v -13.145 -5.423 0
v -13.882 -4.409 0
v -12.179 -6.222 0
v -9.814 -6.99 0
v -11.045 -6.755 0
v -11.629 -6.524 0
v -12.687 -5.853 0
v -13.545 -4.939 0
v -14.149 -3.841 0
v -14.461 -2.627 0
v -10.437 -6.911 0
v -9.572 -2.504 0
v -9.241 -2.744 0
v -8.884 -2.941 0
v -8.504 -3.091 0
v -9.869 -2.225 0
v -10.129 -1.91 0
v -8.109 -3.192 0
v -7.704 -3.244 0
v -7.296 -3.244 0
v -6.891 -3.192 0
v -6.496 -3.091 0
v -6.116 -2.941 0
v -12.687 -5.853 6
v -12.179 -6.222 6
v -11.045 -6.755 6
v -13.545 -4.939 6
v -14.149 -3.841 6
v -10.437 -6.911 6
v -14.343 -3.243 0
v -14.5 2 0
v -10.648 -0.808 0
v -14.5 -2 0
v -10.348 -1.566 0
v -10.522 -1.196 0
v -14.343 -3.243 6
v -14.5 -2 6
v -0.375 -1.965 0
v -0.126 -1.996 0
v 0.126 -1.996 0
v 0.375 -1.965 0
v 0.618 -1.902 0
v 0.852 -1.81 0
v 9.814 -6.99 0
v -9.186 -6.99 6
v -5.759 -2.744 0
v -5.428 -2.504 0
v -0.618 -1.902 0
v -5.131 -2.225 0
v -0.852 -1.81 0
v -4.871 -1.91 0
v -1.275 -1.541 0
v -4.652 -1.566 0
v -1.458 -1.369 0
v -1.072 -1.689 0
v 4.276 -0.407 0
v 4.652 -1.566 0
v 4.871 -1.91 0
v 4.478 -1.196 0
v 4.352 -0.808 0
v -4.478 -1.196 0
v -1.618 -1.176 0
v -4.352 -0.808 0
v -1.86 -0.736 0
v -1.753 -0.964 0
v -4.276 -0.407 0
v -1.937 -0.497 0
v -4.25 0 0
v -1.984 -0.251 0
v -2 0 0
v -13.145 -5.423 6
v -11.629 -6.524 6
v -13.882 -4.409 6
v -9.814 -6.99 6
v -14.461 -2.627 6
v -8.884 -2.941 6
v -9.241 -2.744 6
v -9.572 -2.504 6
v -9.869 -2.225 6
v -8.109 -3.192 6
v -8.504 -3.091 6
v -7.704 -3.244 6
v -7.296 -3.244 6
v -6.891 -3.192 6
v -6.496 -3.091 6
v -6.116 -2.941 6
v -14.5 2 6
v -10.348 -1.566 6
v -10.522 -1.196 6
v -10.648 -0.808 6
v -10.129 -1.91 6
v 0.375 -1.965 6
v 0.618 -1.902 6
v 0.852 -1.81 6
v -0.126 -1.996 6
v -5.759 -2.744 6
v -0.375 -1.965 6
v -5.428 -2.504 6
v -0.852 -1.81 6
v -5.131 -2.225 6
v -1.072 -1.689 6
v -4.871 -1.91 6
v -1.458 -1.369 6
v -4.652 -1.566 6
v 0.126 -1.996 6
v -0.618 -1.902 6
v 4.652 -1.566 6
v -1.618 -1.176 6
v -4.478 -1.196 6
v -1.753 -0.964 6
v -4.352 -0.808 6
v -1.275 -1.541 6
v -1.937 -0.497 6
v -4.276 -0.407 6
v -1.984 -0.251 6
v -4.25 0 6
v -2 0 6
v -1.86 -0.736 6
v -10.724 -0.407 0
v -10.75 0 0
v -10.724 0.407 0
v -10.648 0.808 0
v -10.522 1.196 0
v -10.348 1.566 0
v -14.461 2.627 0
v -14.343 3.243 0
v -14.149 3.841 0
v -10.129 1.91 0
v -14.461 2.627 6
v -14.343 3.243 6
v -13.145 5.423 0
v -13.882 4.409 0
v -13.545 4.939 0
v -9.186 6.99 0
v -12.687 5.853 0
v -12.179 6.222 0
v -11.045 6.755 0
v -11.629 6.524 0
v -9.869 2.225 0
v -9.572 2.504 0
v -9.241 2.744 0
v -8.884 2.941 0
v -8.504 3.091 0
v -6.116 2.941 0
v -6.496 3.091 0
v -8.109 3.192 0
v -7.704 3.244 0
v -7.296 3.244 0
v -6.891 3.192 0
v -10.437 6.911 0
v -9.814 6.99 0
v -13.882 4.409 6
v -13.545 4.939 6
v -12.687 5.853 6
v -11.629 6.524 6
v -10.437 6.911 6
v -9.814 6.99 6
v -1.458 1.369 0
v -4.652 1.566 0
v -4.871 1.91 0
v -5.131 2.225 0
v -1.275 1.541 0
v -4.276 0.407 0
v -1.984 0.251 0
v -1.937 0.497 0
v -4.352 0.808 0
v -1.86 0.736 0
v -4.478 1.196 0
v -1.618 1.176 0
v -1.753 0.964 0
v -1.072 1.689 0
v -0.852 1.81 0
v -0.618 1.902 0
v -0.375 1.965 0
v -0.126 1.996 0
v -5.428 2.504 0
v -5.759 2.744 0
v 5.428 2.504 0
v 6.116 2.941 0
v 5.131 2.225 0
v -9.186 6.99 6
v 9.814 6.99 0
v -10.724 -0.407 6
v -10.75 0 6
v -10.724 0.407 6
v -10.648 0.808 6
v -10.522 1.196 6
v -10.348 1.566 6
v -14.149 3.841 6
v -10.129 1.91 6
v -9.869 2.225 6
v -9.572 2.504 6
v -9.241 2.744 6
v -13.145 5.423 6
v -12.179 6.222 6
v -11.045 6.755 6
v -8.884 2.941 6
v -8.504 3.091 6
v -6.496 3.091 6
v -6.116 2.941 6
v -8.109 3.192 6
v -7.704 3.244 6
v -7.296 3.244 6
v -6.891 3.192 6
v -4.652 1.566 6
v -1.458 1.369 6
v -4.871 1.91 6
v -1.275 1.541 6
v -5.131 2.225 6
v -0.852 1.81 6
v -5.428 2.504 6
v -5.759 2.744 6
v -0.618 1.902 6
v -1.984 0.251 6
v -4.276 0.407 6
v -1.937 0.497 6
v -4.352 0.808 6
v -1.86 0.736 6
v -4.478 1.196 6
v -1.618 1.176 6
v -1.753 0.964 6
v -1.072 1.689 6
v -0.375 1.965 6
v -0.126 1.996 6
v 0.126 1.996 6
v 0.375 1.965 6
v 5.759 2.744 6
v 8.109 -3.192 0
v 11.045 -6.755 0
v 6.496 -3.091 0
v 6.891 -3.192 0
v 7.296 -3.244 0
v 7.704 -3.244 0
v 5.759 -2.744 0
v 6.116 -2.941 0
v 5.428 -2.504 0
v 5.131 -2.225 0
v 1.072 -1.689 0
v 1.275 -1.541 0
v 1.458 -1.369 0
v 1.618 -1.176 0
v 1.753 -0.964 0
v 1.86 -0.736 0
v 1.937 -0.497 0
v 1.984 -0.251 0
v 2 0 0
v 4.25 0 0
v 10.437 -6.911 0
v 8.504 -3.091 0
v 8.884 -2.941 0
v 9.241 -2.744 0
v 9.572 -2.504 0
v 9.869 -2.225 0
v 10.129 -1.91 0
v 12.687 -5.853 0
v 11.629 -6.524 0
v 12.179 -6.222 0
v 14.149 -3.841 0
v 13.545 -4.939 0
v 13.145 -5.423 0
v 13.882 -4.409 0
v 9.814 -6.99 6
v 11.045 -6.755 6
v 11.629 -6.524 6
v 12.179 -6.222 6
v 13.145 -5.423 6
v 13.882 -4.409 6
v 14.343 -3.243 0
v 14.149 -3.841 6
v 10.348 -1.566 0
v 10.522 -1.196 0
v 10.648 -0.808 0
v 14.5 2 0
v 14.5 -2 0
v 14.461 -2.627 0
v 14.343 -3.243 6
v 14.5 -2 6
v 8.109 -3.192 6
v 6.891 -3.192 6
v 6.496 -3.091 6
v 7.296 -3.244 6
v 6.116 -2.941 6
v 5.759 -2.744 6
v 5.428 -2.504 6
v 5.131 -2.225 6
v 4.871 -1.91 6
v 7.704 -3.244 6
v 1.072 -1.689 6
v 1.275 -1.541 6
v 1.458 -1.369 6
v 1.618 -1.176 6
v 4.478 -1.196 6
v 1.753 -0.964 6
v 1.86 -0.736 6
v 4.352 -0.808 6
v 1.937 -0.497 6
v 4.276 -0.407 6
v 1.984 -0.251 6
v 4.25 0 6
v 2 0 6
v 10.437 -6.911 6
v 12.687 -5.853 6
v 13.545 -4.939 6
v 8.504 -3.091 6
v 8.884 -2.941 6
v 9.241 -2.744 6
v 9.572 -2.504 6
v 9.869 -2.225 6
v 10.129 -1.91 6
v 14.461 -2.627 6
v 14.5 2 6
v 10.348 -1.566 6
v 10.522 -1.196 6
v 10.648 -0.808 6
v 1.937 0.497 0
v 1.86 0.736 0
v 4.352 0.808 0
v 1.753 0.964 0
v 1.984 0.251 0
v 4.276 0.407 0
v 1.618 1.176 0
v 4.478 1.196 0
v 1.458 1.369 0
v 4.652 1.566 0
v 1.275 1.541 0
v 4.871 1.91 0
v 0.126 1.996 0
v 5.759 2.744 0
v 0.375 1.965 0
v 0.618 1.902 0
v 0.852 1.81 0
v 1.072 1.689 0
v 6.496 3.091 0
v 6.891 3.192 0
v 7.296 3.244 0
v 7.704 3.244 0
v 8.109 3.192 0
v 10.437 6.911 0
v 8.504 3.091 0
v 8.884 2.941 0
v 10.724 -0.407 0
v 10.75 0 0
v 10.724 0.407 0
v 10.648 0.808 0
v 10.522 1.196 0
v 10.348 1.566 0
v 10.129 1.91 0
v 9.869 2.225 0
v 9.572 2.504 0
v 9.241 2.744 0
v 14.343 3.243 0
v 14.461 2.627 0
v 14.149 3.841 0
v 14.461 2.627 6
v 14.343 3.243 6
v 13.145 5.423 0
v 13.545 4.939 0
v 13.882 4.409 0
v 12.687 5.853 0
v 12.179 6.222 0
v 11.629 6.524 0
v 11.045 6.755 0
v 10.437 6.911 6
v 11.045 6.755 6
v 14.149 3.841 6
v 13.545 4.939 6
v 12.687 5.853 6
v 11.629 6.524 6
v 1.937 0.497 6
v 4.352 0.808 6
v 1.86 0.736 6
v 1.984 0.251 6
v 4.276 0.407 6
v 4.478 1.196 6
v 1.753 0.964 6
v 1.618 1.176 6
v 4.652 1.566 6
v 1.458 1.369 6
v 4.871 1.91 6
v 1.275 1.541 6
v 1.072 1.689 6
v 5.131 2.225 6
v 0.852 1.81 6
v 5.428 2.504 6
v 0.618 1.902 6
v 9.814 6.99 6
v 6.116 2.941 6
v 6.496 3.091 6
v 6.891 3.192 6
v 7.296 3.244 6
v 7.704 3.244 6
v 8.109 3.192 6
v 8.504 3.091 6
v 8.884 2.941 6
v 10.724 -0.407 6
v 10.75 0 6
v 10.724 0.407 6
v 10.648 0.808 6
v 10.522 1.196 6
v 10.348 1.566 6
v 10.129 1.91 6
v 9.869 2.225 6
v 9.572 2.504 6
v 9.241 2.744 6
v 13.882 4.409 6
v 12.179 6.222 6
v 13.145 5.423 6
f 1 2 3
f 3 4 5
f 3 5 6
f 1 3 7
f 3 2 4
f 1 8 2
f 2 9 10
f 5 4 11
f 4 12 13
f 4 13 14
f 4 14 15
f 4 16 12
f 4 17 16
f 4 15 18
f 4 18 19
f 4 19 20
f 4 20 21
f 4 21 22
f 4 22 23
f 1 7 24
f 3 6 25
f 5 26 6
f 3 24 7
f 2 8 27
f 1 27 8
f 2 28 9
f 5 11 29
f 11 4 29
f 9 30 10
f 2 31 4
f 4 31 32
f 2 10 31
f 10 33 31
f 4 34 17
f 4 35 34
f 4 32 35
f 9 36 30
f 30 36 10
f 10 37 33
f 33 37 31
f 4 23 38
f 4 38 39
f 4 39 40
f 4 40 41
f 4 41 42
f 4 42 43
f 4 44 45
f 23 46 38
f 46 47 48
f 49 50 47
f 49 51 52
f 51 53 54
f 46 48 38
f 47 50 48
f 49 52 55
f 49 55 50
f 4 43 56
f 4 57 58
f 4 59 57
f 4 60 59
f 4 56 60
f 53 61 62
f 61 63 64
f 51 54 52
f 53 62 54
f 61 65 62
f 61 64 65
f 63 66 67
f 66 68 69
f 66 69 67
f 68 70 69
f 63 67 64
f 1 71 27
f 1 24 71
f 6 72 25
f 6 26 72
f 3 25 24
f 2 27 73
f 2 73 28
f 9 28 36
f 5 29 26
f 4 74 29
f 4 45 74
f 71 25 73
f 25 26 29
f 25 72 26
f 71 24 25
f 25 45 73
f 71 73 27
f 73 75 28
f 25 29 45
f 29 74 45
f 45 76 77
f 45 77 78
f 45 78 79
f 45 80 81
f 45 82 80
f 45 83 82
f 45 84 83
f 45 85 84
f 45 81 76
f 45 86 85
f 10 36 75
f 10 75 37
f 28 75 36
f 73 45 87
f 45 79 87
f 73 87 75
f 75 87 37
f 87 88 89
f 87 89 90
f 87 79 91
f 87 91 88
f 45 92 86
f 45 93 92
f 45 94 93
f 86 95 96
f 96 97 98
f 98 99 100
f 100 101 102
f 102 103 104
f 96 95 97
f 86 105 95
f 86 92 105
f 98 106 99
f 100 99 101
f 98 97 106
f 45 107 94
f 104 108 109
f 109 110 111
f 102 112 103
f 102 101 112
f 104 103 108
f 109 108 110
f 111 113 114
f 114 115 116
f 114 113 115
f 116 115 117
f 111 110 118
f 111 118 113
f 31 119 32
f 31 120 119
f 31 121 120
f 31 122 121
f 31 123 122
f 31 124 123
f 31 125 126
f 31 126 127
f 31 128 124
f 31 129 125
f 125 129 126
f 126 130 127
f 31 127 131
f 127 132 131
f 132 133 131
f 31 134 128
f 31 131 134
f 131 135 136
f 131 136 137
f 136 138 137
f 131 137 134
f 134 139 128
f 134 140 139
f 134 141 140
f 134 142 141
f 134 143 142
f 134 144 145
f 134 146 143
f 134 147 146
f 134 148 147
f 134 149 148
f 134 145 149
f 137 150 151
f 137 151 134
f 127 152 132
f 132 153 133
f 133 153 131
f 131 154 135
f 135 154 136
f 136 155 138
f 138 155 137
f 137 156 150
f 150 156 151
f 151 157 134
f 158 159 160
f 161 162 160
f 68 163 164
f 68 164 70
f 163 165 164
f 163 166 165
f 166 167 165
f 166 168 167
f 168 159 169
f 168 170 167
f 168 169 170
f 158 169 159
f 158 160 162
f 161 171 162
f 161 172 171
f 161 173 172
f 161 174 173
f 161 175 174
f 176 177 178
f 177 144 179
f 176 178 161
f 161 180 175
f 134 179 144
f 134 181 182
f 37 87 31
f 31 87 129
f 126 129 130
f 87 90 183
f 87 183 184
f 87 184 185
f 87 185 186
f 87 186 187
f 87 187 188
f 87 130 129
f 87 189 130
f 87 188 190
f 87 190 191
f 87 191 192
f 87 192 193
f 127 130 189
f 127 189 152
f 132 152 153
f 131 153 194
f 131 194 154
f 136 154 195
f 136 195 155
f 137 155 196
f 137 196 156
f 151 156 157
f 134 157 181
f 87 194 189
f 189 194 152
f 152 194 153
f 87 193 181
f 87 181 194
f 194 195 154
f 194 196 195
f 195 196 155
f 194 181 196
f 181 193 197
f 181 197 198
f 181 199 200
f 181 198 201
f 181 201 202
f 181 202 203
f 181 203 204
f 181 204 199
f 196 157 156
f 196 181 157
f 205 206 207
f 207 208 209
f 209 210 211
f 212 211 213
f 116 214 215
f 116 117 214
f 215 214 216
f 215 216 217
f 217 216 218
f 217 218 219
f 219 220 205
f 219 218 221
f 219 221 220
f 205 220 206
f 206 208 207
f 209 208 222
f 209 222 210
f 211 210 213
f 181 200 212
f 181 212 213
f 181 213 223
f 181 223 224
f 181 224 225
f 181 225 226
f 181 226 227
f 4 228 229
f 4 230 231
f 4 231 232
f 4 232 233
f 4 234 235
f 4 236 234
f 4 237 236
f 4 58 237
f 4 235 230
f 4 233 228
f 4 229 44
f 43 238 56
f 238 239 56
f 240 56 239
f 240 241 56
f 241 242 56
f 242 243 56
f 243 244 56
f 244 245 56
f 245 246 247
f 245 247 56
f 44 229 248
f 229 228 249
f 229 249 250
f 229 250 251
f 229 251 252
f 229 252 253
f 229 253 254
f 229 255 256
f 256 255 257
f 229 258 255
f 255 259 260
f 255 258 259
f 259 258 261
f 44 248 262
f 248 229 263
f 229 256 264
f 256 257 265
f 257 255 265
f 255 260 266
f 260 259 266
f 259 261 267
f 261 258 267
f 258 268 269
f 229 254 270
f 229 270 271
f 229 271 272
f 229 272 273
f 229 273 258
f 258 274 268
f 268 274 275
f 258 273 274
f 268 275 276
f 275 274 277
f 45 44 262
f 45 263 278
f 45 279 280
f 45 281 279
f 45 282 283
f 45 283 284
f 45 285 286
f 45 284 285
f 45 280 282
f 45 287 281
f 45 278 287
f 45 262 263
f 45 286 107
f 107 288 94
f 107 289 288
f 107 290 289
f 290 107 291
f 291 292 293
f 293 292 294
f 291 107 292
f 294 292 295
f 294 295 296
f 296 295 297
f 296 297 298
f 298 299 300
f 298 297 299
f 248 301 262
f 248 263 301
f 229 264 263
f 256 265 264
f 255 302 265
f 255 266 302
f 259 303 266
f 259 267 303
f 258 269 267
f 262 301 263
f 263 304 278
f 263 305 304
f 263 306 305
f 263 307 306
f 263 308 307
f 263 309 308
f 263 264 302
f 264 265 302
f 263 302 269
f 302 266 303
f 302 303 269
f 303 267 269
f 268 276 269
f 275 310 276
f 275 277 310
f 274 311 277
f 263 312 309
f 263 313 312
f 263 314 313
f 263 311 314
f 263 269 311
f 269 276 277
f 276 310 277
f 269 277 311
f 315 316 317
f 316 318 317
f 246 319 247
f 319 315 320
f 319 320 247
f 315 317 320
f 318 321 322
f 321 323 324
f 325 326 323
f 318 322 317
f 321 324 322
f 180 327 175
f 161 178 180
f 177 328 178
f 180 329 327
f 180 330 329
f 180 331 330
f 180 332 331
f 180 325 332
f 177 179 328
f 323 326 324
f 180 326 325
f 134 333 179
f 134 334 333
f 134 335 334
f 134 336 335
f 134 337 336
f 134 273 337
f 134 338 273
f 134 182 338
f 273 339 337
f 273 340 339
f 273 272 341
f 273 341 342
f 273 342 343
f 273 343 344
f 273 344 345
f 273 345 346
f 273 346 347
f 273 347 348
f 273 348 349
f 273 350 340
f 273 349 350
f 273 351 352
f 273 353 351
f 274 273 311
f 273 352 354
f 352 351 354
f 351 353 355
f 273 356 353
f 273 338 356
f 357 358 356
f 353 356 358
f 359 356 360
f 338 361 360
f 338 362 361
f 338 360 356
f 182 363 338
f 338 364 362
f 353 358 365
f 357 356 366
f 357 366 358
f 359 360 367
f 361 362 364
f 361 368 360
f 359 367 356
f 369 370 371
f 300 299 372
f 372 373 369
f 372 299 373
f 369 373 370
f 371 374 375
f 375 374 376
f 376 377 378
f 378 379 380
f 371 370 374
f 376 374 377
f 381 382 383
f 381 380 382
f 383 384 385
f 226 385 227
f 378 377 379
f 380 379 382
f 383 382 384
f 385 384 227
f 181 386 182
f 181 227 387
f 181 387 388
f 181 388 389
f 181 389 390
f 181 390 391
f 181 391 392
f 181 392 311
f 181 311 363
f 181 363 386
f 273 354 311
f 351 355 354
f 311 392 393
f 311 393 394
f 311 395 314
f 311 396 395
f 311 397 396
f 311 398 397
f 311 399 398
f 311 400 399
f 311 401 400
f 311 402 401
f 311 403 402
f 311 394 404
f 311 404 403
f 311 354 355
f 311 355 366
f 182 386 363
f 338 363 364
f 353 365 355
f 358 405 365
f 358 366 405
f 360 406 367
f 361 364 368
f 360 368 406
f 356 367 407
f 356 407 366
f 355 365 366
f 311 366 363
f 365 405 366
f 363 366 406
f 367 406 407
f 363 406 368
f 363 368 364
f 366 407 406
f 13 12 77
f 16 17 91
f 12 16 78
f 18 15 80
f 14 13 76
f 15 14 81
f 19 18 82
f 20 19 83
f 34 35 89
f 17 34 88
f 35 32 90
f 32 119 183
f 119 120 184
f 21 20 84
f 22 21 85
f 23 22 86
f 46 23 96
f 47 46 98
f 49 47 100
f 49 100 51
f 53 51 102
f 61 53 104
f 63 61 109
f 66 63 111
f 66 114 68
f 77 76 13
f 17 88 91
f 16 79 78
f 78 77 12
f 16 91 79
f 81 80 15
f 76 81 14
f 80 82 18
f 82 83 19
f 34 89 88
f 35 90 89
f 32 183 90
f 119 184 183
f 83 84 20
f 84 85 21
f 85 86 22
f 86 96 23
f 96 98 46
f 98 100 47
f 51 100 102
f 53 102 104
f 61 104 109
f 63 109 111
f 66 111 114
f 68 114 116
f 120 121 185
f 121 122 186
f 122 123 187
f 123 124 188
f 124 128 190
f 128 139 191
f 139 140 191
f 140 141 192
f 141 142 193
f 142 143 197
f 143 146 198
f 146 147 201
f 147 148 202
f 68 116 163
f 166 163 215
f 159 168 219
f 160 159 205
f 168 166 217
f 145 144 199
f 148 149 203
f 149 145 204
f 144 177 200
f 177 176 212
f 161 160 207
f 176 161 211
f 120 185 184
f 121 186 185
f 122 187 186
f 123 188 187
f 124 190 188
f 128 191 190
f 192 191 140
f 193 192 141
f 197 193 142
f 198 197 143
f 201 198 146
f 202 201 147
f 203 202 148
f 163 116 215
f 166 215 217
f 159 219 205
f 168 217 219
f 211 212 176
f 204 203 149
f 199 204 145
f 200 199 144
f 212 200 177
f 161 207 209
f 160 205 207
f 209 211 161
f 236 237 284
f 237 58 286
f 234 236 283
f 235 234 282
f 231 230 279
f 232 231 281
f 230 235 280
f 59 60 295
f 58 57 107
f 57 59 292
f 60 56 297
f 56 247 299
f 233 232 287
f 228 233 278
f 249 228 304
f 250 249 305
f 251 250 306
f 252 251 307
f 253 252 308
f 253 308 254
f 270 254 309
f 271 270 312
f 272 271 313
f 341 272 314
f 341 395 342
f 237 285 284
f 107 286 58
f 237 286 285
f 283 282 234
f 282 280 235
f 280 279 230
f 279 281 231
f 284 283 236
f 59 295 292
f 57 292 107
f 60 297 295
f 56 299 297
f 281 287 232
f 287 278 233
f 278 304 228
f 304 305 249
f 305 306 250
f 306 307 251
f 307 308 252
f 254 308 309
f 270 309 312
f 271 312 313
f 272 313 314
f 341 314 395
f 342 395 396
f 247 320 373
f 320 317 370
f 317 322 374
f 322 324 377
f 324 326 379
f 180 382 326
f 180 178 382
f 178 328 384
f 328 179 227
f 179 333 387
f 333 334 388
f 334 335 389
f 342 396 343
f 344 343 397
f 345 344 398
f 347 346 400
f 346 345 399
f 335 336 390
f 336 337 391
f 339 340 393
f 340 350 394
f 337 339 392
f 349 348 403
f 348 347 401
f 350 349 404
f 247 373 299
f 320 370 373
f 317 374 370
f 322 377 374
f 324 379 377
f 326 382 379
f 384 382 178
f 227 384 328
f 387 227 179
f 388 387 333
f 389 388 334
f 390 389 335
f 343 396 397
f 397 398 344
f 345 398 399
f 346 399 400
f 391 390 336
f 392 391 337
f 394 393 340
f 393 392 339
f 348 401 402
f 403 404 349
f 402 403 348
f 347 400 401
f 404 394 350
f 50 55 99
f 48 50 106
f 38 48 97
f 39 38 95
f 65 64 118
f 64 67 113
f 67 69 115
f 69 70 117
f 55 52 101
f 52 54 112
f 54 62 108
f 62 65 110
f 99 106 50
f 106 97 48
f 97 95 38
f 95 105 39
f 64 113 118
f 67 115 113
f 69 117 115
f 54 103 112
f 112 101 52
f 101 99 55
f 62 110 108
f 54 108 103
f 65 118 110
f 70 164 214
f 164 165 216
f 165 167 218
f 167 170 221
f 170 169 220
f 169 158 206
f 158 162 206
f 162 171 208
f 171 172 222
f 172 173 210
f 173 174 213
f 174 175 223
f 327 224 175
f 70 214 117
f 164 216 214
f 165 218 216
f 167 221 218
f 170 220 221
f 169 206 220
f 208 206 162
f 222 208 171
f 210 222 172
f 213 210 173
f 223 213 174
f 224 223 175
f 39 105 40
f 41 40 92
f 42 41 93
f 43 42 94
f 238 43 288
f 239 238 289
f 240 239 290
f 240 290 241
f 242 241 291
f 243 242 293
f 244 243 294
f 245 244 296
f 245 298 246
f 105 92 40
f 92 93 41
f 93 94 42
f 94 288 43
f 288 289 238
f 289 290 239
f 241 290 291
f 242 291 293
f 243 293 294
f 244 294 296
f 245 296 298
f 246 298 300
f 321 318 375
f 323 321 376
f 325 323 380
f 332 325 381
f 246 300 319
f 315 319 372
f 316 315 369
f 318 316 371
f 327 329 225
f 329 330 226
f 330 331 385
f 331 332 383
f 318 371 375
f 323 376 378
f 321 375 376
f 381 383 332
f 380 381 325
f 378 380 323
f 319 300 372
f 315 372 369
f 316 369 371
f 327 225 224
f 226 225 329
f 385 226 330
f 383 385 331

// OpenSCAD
$fn = 50;

difference() {
	union() {
		hull() {
			translate(v = [-9.5, 2.0, 0]) {
				cylinder(h = 6, r = 5);
			}
			translate(v = [9.5, 2.0, 0]) {
				cylinder(h = 6, r = 5);
			}
			translate(v = [-9.5, -2.0, 0]) {
				cylinder(h = 6, r = 5);
			}
			translate(v = [9.5, -2.0, 0]) {
				cylinder(h = 6, r = 5);
			}
		}
	}
	union() {
		translate(v = [-7.5, 0.0, 0]) {
			cylinder(h = 6, r = 3.25);
		}
		translate(v = [7.5, 0.0, 0]) {
			cylinder(h = 6, r = 3.25);
		}
		cylinder(h = 6, r = 2.0);
	}
}
